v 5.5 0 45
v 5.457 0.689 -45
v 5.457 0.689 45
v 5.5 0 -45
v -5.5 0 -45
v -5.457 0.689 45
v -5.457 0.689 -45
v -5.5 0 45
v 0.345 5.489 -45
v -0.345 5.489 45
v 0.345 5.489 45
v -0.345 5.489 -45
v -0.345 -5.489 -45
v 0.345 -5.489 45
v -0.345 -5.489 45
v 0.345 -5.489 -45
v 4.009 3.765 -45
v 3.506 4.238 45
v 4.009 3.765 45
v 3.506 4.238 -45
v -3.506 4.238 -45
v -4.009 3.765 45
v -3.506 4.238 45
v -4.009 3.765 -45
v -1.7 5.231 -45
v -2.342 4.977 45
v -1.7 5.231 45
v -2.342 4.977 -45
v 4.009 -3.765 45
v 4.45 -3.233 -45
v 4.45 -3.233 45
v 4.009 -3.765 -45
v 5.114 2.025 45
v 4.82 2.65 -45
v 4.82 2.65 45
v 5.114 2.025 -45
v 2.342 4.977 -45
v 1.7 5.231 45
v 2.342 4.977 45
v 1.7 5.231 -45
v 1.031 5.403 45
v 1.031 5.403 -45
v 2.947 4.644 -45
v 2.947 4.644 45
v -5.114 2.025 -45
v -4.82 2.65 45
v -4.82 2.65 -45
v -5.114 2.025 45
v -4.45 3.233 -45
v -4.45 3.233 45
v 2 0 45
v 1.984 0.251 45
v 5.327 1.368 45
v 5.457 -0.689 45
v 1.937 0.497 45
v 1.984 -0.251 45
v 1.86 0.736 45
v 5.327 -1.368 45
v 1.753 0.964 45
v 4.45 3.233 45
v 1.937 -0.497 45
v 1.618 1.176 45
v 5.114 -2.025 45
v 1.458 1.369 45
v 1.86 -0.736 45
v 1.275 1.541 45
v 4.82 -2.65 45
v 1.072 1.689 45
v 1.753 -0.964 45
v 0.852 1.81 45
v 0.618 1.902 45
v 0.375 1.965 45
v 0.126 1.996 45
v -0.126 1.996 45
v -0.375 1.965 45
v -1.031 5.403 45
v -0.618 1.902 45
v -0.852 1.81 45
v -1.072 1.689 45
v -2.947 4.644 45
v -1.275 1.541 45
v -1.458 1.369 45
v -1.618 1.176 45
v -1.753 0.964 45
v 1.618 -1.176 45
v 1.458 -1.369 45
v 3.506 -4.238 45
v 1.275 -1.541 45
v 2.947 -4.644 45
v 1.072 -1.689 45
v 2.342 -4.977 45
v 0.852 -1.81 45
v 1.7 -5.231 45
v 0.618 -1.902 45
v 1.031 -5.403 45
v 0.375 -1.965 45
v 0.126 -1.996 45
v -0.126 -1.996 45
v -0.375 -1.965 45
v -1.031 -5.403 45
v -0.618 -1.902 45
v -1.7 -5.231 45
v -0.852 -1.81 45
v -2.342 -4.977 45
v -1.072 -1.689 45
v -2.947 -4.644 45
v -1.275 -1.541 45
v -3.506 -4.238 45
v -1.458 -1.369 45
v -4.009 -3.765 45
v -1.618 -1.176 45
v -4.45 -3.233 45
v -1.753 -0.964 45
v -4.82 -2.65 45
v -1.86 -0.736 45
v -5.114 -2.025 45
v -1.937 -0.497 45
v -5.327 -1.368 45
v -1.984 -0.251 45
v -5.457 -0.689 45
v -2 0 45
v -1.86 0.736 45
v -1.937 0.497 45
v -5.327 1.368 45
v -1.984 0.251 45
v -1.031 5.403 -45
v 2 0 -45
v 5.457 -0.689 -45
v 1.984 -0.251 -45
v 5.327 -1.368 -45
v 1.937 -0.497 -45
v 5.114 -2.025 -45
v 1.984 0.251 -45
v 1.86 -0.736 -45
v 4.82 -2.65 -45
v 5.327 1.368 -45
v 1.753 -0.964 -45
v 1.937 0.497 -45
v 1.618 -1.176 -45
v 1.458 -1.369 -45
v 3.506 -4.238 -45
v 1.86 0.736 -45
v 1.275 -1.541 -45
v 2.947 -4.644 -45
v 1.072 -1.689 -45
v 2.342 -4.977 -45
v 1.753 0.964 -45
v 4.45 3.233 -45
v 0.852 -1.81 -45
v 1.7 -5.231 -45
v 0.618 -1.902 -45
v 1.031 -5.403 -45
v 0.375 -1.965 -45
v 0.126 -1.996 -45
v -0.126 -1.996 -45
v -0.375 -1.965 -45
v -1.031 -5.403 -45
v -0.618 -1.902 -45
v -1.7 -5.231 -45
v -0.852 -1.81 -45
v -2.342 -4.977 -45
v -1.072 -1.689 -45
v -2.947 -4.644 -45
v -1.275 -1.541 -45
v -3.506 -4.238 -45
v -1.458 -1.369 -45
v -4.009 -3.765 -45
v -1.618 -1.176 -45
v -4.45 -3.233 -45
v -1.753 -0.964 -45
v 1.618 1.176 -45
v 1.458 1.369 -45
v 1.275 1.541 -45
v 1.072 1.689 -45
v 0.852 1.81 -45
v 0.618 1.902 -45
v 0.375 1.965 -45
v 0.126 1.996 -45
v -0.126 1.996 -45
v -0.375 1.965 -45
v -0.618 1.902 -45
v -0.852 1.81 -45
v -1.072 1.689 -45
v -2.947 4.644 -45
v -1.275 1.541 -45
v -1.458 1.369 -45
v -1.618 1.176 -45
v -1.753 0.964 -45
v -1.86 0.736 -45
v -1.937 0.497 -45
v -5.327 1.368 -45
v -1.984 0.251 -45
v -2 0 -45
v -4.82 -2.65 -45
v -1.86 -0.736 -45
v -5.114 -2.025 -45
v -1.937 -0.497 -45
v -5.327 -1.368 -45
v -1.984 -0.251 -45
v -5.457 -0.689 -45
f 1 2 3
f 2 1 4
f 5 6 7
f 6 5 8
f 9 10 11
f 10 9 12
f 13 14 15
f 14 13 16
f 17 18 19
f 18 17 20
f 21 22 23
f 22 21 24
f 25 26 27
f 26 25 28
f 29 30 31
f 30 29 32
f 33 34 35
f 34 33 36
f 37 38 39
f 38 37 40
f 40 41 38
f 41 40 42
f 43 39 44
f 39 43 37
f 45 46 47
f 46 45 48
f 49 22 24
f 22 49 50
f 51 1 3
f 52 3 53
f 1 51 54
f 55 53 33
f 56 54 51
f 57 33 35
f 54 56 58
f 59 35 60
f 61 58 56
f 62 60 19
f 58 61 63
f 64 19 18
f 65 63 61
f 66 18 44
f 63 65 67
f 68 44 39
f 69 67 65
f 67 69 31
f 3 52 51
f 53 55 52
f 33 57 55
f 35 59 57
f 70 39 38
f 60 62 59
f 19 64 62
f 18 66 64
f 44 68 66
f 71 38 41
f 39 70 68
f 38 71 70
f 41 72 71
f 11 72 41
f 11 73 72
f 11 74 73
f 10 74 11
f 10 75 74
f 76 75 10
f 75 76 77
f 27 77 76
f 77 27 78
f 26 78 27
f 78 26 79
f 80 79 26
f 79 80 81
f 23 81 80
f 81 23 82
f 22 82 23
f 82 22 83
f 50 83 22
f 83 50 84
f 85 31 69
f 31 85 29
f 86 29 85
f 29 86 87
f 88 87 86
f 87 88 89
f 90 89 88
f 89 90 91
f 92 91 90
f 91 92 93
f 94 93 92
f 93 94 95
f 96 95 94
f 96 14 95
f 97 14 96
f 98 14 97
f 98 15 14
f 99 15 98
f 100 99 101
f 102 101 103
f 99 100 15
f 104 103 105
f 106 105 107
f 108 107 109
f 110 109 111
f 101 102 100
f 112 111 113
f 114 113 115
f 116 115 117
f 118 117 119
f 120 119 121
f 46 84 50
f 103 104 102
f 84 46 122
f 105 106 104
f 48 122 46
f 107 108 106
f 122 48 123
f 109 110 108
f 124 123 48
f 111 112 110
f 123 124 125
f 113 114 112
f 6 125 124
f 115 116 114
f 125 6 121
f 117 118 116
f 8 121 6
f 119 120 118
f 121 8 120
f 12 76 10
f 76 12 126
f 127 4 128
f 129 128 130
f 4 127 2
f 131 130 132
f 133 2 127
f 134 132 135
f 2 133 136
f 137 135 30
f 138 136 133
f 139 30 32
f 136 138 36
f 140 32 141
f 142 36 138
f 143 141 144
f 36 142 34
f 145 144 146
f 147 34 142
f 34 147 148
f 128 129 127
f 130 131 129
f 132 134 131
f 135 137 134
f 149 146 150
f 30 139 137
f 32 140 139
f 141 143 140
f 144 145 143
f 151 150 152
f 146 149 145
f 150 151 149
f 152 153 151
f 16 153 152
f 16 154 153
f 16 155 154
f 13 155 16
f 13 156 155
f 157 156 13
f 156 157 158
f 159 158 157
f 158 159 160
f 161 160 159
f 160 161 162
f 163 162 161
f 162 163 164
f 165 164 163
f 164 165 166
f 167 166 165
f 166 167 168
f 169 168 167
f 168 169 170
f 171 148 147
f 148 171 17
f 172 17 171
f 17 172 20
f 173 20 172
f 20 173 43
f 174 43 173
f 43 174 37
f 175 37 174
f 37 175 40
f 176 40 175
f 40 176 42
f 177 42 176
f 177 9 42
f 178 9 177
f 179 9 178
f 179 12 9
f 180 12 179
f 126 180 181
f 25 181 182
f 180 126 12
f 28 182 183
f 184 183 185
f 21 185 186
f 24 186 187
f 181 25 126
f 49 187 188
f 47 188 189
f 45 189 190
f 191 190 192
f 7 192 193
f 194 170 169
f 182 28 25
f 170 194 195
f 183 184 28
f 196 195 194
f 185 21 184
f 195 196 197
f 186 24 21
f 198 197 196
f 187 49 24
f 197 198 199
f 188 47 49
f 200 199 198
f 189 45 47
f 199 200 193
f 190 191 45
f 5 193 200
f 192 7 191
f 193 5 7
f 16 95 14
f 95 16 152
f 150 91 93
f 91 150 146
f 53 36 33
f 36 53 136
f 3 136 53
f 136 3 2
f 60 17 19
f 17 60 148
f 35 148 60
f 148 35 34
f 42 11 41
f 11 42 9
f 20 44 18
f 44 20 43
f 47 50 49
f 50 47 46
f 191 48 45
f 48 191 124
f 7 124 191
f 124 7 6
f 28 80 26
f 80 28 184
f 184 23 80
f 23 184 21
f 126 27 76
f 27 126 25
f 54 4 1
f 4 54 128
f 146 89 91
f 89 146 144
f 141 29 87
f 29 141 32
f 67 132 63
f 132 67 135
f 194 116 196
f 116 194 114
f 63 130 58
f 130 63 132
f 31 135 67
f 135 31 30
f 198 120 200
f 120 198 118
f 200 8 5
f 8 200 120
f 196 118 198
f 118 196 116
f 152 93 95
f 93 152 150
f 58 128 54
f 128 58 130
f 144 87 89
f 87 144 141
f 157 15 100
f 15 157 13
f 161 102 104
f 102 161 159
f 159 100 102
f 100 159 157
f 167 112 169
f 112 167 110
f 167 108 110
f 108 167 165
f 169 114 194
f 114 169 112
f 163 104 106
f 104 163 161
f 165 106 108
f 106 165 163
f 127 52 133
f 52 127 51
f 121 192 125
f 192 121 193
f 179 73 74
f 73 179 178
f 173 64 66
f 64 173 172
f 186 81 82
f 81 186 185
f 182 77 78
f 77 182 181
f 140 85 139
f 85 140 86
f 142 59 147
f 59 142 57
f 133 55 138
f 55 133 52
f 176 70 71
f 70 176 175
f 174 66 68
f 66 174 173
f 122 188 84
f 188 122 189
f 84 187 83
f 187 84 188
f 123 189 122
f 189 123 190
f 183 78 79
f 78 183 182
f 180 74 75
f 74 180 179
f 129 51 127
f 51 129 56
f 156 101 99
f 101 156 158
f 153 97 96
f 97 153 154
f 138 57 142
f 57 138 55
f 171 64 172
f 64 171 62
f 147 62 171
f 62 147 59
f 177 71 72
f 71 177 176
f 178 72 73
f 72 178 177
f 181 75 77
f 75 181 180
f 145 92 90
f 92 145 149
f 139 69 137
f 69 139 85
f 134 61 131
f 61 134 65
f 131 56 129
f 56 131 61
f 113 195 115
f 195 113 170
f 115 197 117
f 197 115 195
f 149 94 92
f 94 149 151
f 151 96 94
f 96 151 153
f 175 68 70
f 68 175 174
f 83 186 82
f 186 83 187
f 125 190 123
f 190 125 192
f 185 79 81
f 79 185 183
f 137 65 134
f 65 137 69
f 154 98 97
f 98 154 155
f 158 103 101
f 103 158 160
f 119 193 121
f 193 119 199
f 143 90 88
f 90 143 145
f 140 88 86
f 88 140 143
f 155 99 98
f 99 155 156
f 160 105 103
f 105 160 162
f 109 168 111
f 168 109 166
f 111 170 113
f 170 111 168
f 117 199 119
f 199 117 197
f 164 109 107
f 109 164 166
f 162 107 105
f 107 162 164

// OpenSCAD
$fn = 50;


difference() {
	union() {
		translate(v = [0, 0, -45.0000000000]) {
			cylinder(h = 90, r = 5.5000000000);
		}
	}
	union() {
		translate(v = [0, 0, -100.0000000000]) {
			cylinder(h = 200, r = 2);
		}
	}
}
